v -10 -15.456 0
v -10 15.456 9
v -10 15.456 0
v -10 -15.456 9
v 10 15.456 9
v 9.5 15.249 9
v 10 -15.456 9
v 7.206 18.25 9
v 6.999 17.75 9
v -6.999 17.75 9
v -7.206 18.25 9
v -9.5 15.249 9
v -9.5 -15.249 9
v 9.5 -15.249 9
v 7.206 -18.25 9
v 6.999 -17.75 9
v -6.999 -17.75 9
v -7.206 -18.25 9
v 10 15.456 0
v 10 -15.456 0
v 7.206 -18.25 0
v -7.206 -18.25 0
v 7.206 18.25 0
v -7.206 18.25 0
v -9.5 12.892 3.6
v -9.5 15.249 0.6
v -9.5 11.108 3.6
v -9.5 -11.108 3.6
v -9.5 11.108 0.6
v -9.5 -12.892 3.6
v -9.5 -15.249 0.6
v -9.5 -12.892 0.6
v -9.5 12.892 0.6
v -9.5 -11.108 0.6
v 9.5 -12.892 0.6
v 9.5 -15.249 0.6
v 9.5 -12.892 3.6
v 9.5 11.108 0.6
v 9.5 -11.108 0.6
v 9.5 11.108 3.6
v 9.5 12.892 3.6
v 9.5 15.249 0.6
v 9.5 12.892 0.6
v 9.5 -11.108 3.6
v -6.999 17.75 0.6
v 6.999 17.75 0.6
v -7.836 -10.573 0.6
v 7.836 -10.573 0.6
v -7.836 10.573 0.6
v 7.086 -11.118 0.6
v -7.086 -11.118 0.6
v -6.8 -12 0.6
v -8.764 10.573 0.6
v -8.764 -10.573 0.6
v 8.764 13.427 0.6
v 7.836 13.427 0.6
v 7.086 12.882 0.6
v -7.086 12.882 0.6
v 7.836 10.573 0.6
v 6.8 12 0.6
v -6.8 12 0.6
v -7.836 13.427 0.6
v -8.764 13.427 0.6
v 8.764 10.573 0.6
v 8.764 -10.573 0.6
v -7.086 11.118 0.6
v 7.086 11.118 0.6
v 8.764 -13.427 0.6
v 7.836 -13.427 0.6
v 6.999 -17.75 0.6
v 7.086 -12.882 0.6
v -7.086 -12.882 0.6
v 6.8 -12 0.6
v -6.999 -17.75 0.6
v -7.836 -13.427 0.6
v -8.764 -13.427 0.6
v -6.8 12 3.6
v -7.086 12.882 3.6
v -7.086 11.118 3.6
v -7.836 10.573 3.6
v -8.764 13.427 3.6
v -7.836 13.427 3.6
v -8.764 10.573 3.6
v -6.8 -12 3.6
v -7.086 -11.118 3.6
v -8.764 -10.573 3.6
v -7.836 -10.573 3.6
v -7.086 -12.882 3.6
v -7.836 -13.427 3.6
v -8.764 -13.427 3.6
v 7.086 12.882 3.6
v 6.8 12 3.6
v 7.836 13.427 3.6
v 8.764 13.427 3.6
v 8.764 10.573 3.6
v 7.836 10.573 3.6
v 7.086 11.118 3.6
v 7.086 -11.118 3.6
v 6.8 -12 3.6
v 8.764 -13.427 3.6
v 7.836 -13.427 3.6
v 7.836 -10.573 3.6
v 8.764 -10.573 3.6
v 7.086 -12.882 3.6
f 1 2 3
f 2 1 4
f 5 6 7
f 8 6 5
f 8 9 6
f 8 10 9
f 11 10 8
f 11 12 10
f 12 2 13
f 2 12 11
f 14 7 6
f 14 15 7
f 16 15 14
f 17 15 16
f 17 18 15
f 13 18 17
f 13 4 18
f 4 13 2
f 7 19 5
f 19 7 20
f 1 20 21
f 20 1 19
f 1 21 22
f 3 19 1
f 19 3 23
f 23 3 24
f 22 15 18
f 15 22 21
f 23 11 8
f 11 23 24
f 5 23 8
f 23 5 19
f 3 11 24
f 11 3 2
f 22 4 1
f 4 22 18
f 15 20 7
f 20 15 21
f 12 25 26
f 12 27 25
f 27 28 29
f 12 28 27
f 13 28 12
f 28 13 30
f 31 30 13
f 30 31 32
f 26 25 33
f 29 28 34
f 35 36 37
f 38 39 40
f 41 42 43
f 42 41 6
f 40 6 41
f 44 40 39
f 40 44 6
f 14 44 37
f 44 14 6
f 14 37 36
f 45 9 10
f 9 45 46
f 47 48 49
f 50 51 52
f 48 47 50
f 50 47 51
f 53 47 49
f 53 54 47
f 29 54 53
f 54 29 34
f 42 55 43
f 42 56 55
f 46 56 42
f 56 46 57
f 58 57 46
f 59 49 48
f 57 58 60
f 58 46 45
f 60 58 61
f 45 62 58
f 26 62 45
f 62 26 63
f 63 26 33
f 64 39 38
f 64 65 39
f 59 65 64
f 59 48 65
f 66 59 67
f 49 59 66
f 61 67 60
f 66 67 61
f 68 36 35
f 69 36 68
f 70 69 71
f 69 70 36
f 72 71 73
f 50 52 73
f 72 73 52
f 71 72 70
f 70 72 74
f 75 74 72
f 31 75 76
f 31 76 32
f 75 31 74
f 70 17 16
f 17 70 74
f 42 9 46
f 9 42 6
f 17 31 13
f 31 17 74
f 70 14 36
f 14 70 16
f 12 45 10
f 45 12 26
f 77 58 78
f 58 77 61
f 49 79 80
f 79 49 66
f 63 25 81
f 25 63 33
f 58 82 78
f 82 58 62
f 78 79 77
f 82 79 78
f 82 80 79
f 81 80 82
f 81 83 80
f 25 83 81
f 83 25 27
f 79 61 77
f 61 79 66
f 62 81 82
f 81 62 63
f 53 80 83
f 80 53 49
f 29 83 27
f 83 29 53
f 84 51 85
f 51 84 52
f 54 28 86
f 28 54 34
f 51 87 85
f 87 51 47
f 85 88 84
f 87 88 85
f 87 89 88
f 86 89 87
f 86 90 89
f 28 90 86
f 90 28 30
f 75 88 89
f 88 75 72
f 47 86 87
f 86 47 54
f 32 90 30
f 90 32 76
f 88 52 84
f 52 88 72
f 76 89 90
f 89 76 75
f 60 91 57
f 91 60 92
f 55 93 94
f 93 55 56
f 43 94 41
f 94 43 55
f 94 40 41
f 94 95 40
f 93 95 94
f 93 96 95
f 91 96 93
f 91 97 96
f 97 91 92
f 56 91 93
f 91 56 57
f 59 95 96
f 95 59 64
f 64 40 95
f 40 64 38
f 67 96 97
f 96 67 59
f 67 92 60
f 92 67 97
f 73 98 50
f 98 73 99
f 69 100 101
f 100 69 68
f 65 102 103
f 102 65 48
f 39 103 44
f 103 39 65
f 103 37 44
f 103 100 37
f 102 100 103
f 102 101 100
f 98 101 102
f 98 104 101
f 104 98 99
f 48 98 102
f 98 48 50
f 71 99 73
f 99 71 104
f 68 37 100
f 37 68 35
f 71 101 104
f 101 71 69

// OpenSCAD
//projection(cut=true) translate([0,0,-1])
union() {
    difference() {
        translate([0,0,4.5]) {
            intersection() {
                cube([20,36.5,9], center=true);
                translate([0,0,0]) rotate(45) {
                    cube(36, center=true);
                }
            }
        }
        translate([0,0,5.1]) {
            intersection() {
                cube([19,35.5,9], center=true);
                translate([0,0,0]) rotate(45) {
                    cube(35, center=true);
                }
            }
        }
    }

    translate([-8.3,  +12,1.8]) cylinder(3.6,1.5,1.5,center=true,$fn=10);
    translate([-8.3,  -12,1.8]) cylinder(3.6,1.5,1.5,center=true,$fn=10);
    translate([+8.3,  +12,1.8]) cylinder(3.6,1.5,1.5,center=true,$fn=10);
    translate([+8.3,  -12,1.8]) cylinder(3.6,1.5,1.5,center=true,$fn=10);
}
